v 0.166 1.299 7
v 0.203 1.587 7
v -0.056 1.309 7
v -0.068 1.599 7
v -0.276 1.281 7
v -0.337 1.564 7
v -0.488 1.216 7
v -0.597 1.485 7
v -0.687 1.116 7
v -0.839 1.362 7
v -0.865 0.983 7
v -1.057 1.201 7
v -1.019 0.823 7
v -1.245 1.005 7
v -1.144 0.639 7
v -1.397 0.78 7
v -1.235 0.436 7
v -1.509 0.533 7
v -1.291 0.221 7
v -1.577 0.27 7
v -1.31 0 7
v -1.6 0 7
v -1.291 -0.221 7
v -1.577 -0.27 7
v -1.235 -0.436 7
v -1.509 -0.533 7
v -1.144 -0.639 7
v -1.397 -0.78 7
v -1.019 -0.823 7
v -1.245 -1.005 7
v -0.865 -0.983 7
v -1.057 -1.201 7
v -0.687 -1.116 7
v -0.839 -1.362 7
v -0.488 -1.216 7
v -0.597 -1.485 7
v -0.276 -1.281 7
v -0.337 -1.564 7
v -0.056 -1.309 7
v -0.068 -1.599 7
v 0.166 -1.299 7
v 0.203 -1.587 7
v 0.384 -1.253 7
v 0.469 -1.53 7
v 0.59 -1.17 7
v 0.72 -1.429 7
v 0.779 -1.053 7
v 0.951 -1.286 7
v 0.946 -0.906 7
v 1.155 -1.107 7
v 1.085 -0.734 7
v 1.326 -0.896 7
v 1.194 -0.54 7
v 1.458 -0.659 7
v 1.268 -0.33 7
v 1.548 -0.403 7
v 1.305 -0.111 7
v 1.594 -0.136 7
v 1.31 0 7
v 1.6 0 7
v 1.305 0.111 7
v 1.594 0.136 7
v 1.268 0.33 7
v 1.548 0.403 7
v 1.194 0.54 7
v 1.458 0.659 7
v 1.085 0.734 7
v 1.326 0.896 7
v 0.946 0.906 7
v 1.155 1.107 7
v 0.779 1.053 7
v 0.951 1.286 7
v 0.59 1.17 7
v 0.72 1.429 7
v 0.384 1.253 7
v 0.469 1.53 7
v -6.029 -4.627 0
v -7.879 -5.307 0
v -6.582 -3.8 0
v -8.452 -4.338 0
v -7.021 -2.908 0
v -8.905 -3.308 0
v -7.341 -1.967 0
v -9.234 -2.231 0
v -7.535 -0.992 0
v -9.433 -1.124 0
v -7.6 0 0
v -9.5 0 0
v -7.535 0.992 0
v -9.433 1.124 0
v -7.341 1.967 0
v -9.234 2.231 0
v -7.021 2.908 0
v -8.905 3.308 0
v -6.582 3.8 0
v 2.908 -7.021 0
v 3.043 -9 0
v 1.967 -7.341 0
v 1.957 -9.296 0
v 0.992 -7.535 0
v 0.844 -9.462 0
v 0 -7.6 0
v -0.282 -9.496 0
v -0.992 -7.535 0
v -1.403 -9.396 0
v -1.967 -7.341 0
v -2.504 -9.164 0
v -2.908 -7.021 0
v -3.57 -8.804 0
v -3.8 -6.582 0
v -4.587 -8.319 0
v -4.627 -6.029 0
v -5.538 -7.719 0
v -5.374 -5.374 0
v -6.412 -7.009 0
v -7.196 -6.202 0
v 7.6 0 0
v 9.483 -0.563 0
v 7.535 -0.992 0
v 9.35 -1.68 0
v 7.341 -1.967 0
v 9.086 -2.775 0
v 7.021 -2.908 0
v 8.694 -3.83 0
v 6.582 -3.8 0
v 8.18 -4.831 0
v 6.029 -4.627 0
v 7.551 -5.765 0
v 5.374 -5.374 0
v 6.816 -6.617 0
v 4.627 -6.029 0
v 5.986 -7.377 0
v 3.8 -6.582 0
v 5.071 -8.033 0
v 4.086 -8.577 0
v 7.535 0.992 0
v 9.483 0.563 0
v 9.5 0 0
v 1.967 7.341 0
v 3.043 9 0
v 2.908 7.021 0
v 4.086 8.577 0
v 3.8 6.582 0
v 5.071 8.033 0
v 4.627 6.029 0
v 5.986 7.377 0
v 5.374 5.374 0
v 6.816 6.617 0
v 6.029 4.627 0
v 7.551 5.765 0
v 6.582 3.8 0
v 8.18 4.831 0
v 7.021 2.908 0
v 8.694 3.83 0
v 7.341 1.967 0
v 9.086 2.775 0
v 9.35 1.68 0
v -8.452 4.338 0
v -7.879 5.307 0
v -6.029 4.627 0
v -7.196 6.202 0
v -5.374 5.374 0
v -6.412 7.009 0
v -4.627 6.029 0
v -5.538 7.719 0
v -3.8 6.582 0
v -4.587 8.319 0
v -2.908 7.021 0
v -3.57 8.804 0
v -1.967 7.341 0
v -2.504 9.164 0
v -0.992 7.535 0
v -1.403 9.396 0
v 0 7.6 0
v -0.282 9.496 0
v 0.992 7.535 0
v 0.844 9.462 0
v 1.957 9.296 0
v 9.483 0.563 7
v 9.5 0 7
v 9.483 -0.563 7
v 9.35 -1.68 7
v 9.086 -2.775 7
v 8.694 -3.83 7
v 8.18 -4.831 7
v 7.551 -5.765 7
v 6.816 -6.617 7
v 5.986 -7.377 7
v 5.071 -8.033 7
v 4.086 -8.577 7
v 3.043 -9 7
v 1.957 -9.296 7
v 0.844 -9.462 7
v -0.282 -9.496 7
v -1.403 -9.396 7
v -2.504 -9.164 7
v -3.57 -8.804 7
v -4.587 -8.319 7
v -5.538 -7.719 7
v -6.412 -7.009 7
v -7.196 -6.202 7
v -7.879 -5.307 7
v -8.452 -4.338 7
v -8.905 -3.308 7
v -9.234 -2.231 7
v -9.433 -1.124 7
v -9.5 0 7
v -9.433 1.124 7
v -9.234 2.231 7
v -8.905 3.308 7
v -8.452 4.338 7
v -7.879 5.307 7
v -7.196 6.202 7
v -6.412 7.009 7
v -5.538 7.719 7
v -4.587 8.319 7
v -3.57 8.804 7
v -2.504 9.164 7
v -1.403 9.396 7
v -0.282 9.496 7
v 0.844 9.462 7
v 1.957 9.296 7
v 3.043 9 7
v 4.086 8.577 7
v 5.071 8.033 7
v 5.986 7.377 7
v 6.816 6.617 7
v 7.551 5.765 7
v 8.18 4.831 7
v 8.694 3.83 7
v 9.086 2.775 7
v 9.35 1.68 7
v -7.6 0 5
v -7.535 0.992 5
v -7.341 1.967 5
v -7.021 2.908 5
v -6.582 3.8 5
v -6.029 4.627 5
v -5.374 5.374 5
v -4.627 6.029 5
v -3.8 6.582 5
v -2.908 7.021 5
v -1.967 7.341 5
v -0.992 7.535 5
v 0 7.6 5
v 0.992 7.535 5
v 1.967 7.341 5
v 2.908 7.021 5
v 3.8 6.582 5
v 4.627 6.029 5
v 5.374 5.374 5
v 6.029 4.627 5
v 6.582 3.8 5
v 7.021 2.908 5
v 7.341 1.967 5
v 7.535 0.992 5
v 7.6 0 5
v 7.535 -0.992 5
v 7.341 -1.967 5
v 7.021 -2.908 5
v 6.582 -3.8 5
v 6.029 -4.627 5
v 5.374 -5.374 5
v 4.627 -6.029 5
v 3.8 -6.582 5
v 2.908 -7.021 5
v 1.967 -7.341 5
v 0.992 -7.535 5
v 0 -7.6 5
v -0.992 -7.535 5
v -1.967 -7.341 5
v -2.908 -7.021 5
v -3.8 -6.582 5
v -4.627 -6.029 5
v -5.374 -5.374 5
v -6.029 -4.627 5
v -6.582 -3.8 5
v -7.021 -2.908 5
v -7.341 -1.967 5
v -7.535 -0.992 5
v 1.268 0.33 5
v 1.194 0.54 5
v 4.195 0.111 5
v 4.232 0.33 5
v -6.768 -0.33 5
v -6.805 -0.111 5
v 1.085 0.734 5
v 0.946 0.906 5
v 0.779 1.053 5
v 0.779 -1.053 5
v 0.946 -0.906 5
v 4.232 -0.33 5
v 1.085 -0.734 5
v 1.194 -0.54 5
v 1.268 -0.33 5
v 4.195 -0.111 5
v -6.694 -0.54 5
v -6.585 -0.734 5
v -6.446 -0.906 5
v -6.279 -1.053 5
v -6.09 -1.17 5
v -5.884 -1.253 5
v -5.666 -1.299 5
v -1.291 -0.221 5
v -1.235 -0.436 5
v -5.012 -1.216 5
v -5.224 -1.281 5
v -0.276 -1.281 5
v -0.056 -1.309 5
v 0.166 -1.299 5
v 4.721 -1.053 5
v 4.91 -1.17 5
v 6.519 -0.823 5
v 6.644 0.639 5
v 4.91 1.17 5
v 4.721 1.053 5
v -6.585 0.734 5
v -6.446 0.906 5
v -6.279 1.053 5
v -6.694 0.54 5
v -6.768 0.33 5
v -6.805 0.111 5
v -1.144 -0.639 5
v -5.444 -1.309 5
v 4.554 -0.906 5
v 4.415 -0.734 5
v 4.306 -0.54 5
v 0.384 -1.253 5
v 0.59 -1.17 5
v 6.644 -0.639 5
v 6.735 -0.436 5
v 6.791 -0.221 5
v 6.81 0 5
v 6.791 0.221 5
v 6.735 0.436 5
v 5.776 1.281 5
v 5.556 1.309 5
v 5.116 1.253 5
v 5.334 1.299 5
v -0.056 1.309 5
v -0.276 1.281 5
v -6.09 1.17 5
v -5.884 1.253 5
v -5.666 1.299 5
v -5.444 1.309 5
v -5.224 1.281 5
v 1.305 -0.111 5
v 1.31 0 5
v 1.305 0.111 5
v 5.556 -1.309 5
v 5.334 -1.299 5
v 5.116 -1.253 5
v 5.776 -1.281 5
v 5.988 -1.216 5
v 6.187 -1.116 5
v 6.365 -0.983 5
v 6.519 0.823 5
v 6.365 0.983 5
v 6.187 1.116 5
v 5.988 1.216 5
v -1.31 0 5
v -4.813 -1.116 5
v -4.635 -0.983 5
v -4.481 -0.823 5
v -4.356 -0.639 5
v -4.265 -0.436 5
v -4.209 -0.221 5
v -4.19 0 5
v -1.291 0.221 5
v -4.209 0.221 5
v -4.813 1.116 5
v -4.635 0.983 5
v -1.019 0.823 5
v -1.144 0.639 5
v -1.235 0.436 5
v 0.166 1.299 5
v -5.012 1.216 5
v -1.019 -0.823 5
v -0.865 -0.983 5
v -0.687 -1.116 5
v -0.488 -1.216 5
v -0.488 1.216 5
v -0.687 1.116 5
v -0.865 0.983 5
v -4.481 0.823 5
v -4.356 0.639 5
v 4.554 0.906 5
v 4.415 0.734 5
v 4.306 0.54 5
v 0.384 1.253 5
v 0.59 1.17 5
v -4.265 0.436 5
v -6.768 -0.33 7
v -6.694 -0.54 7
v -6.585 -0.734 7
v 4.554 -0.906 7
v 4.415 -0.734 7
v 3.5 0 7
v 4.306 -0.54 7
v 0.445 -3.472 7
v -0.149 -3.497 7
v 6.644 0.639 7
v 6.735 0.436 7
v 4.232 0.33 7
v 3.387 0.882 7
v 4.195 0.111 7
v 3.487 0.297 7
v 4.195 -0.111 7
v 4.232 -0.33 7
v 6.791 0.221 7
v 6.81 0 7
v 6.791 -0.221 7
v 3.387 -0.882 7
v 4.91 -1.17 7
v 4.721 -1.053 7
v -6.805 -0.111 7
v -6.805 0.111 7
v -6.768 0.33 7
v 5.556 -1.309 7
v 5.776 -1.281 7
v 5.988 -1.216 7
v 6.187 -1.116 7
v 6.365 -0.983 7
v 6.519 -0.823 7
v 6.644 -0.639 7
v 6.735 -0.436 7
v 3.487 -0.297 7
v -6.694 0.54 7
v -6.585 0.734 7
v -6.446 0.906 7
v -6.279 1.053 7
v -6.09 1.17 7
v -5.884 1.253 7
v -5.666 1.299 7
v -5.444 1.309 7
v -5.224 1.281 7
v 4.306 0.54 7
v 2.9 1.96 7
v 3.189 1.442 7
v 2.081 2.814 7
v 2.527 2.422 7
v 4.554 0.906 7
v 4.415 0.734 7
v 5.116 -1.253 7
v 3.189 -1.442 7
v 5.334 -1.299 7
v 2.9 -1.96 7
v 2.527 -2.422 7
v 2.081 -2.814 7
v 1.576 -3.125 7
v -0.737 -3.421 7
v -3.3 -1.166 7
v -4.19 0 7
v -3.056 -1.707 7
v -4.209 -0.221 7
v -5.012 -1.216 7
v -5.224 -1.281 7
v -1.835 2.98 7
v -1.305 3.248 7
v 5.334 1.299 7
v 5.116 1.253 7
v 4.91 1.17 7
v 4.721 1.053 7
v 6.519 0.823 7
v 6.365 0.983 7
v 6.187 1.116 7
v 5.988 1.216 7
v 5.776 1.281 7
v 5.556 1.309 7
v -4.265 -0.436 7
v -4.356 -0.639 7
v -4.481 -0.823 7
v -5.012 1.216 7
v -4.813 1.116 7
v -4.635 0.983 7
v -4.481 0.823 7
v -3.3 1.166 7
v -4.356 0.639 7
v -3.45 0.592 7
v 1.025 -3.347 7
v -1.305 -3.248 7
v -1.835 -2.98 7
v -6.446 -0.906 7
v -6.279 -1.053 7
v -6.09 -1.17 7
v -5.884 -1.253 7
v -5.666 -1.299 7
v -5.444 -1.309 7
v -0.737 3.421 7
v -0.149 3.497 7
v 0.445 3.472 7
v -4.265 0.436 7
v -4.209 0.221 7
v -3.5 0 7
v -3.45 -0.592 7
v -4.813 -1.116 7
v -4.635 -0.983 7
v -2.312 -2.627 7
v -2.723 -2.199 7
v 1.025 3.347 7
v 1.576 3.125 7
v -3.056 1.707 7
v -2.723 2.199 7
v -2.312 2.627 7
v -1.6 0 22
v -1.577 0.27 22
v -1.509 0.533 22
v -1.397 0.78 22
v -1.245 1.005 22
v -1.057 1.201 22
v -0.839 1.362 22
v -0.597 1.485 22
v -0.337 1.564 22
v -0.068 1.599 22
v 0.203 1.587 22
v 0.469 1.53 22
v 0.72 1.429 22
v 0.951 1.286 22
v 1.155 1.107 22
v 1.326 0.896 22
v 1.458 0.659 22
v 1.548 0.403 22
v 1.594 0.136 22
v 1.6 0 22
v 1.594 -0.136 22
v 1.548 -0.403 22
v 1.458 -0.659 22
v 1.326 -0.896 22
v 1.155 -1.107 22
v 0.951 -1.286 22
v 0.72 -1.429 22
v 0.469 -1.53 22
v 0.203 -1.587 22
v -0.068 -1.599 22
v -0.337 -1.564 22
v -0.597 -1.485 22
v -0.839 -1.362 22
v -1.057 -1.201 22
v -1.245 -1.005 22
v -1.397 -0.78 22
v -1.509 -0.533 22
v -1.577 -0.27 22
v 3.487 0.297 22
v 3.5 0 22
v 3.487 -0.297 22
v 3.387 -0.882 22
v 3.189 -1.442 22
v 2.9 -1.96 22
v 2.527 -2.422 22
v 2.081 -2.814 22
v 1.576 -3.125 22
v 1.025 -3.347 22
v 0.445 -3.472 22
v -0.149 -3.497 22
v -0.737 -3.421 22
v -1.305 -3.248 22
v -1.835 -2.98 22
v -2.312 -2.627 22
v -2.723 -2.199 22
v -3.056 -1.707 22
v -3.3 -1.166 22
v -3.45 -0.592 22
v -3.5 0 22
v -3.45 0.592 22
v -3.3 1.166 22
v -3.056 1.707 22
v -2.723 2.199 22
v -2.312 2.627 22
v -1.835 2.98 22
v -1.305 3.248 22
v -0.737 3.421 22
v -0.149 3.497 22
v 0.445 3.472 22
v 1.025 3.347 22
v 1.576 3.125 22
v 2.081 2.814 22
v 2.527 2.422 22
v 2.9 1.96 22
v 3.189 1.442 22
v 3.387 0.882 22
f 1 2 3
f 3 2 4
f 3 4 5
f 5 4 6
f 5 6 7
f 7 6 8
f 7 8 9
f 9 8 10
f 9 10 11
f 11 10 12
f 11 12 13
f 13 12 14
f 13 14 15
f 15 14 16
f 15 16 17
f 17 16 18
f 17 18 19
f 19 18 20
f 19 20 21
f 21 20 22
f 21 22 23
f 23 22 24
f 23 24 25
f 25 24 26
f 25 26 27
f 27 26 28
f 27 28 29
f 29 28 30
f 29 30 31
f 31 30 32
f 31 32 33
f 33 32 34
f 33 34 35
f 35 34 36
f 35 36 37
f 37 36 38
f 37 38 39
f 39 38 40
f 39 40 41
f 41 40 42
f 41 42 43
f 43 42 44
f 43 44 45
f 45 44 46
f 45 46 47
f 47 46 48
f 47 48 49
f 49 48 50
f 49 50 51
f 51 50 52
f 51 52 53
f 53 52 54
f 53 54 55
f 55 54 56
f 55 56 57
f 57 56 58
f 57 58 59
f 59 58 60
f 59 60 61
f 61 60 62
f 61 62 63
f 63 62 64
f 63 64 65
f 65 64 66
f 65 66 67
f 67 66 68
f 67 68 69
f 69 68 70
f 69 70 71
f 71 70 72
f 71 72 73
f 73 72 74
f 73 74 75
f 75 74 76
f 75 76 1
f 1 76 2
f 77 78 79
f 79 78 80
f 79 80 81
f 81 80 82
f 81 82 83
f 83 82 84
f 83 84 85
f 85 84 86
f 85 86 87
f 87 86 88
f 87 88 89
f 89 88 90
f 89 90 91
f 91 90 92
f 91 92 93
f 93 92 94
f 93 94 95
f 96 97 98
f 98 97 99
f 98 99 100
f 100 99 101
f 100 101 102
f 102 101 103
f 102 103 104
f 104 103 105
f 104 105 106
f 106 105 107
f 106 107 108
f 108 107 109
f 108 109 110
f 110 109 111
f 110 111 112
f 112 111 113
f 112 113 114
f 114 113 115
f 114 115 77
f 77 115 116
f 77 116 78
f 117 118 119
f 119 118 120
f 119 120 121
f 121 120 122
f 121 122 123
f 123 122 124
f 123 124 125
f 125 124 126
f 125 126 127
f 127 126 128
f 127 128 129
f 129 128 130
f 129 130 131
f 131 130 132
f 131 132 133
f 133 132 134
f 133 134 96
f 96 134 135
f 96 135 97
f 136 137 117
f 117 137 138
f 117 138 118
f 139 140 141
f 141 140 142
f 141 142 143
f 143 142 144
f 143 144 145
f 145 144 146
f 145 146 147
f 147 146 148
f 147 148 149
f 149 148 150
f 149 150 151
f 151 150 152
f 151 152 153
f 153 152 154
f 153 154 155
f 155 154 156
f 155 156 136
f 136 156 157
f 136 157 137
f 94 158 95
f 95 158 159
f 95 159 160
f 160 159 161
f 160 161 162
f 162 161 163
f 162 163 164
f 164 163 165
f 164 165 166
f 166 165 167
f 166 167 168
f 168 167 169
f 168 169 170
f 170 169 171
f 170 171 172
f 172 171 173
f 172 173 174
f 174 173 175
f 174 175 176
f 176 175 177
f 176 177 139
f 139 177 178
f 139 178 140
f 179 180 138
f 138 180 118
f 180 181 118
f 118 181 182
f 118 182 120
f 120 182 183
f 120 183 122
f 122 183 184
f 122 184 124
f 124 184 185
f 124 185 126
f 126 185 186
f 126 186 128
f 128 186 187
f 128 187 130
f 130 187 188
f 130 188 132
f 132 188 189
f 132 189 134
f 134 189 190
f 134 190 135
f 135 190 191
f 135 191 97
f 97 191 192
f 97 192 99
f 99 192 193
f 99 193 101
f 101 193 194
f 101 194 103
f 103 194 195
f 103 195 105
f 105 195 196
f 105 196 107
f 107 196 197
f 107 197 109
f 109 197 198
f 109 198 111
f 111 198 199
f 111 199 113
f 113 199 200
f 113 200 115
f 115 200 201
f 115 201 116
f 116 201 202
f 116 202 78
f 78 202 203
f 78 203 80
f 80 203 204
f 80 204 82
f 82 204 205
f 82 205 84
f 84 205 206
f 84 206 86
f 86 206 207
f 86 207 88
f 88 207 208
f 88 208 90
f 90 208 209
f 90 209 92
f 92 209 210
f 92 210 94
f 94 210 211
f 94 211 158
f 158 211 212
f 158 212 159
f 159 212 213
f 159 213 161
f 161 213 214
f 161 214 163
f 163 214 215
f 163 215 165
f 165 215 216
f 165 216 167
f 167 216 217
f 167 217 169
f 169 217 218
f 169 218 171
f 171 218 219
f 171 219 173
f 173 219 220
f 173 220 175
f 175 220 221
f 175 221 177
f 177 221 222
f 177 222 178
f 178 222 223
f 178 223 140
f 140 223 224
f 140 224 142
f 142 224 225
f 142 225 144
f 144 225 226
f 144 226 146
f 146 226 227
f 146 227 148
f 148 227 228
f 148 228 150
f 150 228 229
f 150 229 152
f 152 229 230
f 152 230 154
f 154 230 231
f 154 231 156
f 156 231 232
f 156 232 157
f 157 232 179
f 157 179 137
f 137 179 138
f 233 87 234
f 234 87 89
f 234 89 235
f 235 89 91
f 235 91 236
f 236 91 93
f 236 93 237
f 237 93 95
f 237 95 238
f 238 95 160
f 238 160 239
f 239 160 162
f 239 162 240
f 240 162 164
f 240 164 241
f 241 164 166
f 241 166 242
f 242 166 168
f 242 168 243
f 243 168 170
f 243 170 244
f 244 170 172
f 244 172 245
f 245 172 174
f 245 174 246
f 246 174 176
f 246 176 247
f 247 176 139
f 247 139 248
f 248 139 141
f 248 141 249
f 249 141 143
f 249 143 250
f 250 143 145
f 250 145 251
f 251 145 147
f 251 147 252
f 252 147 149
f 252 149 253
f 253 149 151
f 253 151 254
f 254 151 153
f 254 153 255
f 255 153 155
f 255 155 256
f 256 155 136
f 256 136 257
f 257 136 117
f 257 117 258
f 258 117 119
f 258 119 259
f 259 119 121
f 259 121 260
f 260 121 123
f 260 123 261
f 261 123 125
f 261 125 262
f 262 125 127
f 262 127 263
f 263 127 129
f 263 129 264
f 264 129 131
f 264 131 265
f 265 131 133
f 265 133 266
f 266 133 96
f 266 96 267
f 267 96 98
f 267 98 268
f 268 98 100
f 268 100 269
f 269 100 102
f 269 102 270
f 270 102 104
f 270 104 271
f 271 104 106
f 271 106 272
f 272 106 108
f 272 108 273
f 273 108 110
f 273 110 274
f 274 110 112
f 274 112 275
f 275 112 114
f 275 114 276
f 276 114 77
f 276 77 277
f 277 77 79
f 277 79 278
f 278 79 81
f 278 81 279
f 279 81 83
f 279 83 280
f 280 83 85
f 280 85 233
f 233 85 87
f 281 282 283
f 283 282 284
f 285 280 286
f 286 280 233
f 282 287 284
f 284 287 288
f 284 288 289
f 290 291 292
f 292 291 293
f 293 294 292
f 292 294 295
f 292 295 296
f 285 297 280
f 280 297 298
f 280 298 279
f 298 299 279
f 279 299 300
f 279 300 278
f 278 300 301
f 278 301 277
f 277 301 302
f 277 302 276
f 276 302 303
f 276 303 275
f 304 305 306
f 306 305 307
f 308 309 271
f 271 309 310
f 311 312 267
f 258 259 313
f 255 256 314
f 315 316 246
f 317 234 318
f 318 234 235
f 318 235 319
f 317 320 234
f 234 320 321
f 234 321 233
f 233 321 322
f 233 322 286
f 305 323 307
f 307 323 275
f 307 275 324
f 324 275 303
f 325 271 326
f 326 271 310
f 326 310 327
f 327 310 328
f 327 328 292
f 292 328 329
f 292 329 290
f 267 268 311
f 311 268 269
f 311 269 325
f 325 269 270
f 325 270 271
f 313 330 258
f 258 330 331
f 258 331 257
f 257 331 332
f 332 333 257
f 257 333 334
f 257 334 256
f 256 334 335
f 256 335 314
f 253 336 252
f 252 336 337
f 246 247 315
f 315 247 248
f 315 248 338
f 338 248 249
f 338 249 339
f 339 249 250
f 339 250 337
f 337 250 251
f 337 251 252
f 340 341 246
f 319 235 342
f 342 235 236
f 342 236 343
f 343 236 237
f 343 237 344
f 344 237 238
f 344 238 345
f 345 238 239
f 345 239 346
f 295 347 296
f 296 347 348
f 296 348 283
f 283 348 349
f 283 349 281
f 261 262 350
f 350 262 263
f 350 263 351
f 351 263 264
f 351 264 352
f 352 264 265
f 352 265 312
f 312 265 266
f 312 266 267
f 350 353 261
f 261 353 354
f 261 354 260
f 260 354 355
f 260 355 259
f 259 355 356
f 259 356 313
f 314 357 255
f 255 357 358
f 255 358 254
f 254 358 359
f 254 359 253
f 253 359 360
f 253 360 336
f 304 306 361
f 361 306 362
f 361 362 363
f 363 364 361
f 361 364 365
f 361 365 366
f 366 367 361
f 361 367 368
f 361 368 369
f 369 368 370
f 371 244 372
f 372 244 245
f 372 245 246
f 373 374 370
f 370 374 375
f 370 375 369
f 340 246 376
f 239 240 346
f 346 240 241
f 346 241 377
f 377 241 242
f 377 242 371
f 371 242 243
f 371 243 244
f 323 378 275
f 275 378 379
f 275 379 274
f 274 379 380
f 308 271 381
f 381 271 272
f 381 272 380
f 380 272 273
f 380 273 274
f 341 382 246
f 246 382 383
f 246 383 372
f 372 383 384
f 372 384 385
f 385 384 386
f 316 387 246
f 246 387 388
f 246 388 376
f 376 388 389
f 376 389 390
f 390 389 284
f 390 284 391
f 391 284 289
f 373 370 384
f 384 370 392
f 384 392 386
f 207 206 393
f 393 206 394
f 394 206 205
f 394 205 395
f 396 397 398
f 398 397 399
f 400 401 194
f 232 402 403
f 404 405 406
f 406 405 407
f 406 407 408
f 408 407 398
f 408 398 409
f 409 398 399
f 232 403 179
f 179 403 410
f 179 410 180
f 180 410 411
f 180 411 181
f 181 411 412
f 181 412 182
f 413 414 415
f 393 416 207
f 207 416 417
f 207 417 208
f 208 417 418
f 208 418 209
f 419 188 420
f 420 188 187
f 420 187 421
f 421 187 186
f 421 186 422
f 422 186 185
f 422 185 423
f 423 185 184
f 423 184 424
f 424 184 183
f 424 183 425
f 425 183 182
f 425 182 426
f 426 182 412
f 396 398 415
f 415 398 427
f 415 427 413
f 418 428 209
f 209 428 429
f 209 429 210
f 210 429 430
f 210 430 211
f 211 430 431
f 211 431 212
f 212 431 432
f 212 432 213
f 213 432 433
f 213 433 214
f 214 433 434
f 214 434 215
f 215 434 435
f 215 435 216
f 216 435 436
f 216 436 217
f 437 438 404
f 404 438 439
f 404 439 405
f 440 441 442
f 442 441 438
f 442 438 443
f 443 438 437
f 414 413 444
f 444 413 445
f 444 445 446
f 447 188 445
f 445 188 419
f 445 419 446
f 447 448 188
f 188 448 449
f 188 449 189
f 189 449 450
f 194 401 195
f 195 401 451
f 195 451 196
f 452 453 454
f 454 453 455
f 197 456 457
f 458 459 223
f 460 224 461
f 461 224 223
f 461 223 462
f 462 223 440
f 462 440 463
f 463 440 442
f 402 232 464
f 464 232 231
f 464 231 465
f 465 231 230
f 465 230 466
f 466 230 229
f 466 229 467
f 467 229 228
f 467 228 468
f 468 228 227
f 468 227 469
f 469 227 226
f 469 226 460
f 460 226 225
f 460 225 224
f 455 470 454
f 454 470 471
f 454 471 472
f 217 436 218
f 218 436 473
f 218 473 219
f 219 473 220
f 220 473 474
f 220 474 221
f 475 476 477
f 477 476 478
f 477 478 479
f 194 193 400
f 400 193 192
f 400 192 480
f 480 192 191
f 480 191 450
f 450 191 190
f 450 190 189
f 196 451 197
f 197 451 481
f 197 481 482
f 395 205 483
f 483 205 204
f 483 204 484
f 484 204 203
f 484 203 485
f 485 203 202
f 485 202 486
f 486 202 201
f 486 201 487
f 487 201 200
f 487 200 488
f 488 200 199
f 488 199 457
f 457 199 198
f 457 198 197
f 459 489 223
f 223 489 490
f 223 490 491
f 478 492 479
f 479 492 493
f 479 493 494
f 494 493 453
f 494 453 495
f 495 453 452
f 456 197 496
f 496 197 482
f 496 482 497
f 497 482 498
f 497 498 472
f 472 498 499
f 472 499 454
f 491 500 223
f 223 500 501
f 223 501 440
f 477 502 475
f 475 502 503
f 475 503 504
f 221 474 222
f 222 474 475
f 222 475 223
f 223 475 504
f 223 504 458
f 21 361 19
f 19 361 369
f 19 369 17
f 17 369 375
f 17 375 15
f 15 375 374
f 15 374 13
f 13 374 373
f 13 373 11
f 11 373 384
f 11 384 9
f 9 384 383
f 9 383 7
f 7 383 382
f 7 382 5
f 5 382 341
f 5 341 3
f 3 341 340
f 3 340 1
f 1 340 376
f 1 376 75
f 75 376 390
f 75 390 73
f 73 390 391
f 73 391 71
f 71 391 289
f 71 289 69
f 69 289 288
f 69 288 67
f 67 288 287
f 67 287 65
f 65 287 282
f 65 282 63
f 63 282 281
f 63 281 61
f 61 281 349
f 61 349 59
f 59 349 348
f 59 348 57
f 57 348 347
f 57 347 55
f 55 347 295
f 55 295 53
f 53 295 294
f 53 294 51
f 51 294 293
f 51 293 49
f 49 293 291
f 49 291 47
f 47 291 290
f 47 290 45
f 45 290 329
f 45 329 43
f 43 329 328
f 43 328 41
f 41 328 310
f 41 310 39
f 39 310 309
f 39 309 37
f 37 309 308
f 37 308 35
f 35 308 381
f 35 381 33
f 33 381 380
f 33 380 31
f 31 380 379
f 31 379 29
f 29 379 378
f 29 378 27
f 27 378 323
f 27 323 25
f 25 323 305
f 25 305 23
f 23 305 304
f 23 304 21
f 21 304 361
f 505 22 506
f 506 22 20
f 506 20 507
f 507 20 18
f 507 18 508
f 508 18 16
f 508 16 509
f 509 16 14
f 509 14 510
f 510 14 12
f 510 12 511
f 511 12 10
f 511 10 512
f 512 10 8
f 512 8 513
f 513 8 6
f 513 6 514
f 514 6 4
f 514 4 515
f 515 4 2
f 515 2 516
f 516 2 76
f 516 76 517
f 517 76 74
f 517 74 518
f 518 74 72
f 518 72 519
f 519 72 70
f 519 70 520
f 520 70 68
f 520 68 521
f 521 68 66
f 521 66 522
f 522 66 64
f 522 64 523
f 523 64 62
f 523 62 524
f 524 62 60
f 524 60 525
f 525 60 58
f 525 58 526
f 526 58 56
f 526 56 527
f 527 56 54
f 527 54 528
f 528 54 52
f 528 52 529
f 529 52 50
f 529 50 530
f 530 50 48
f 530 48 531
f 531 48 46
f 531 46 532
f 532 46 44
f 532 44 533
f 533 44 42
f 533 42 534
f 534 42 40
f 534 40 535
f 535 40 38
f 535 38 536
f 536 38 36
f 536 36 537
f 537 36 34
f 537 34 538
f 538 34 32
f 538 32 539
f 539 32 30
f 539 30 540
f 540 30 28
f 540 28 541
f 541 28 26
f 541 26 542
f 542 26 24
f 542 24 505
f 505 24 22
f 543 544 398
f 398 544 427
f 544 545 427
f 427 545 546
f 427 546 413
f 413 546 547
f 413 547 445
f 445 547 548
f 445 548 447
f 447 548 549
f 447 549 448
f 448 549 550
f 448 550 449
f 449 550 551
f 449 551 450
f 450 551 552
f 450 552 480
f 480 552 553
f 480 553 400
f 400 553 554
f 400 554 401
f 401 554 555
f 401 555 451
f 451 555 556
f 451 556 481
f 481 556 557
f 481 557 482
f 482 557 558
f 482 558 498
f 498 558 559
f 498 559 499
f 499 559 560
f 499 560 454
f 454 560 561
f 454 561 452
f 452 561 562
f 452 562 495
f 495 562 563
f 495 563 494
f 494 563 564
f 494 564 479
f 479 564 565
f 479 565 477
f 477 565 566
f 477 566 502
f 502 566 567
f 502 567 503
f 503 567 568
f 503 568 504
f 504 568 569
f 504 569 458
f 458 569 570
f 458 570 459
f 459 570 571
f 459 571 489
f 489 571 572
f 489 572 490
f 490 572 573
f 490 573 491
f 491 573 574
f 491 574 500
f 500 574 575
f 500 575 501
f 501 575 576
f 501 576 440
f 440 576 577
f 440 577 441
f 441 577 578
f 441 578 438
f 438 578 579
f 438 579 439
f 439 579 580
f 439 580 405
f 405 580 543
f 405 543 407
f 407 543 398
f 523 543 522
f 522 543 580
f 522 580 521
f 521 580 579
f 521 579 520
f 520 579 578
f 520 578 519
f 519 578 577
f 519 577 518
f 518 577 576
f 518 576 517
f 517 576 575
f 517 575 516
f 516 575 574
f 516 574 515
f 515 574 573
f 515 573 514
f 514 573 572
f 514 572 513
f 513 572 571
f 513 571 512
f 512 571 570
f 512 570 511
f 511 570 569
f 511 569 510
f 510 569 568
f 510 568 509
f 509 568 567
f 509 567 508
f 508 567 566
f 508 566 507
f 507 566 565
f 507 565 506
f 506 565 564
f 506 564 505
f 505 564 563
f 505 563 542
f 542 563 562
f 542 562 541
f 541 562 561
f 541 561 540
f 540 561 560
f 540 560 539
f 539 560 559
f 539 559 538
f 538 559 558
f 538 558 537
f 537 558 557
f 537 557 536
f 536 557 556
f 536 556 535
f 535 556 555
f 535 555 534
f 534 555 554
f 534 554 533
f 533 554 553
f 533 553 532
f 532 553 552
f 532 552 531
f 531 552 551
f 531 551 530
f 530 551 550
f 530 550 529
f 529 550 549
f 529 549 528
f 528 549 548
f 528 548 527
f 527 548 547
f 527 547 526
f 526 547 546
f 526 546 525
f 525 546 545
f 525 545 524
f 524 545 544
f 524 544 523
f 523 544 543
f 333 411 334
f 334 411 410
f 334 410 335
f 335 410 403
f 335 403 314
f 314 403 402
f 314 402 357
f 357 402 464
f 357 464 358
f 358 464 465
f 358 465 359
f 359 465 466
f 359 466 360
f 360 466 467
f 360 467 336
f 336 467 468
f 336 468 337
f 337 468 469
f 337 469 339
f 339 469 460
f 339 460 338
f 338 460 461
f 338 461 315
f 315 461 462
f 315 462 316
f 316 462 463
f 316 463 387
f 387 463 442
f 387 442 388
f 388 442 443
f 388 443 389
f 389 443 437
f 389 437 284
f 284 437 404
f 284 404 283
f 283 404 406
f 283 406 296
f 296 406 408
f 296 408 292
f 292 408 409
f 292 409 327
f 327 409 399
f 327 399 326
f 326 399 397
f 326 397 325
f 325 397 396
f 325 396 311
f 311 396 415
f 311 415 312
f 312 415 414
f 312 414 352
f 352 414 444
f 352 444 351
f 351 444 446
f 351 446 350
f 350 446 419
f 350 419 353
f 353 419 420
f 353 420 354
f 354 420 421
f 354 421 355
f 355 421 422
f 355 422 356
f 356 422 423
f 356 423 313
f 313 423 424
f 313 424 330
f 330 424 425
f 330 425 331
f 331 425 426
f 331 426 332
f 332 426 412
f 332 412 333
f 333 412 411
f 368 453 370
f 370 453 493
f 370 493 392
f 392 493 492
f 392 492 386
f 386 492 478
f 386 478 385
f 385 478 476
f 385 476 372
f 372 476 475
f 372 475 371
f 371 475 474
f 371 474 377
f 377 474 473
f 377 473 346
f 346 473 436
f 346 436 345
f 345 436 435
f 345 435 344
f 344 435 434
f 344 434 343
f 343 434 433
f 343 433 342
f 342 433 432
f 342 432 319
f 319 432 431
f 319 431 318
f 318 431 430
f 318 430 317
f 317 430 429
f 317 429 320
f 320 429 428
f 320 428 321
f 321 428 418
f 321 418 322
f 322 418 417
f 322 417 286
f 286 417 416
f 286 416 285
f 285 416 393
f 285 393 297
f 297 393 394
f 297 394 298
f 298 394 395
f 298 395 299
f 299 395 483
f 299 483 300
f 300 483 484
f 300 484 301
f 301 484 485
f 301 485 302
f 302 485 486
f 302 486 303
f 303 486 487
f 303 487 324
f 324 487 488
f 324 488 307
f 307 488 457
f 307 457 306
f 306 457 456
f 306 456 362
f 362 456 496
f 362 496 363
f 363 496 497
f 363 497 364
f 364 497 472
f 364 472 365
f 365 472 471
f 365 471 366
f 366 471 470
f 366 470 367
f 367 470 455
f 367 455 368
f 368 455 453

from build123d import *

# Parameters (mm, degrees)
SKETCH1_R               = 9.5
SKETCH1_R_2             = 7.6
BOSS_EXTRUDE1_DEPTH     = 5
SKETCH2_R               = 9.5
SKETCH2_R_2             = 1.31
BOSS_EXTRUDE2_DEPTH     = 2
SKETCH3_R               = 3.5
SKETCH3_R_2             = 1.6
BOSS_EXTRUDE3_DEPTH     = 15
CUT_EXTRUDE1_DEPTH      = 21.137030566
CUT_EXTRUDE1_DEPTH_BACK = 21.137030566
SKETCH3_3_R             = 1.31


with BuildPart() as part:
    # Sketch1 → Boss-Extrude1 (new body)
    with BuildSketch(Plane.XY):
        Circle(SKETCH1_R)
        Circle(SKETCH1_R_2, mode=Mode.SUBTRACT)
    extrude(amount=BOSS_EXTRUDE1_DEPTH)

    # Sketch2 → Boss-Extrude2 (add)
    with BuildSketch(Plane.XY.offset(5)):
        Circle(SKETCH2_R)
        Circle(SKETCH2_R_2, mode=Mode.SUBTRACT)
    extrude(amount=BOSS_EXTRUDE2_DEPTH)

    # Sketch3 → Boss-Extrude3 (add)
    with BuildSketch(Plane.XY.offset(7)):
        Circle(SKETCH3_R)
        Circle(SKETCH3_R_2, mode=Mode.SUBTRACT)
    extrude(amount=BOSS_EXTRUDE3_DEPTH)

    # Sketch3<3> → Cut-Extrude1 (cut, two sides: drawn at the far end of the back side and taken through both)
    with BuildSketch(Plane.XY.offset(7).offset(-CUT_EXTRUDE1_DEPTH_BACK)):
        with Locations((-5.5, 0)):
            Circle(SKETCH3_3_R)
        with Locations((5.5, 0)):
            Circle(SKETCH3_3_R)
    extrude(amount=CUT_EXTRUDE1_DEPTH + CUT_EXTRUDE1_DEPTH_BACK, mode=Mode.SUBTRACT)


solid = part.part
